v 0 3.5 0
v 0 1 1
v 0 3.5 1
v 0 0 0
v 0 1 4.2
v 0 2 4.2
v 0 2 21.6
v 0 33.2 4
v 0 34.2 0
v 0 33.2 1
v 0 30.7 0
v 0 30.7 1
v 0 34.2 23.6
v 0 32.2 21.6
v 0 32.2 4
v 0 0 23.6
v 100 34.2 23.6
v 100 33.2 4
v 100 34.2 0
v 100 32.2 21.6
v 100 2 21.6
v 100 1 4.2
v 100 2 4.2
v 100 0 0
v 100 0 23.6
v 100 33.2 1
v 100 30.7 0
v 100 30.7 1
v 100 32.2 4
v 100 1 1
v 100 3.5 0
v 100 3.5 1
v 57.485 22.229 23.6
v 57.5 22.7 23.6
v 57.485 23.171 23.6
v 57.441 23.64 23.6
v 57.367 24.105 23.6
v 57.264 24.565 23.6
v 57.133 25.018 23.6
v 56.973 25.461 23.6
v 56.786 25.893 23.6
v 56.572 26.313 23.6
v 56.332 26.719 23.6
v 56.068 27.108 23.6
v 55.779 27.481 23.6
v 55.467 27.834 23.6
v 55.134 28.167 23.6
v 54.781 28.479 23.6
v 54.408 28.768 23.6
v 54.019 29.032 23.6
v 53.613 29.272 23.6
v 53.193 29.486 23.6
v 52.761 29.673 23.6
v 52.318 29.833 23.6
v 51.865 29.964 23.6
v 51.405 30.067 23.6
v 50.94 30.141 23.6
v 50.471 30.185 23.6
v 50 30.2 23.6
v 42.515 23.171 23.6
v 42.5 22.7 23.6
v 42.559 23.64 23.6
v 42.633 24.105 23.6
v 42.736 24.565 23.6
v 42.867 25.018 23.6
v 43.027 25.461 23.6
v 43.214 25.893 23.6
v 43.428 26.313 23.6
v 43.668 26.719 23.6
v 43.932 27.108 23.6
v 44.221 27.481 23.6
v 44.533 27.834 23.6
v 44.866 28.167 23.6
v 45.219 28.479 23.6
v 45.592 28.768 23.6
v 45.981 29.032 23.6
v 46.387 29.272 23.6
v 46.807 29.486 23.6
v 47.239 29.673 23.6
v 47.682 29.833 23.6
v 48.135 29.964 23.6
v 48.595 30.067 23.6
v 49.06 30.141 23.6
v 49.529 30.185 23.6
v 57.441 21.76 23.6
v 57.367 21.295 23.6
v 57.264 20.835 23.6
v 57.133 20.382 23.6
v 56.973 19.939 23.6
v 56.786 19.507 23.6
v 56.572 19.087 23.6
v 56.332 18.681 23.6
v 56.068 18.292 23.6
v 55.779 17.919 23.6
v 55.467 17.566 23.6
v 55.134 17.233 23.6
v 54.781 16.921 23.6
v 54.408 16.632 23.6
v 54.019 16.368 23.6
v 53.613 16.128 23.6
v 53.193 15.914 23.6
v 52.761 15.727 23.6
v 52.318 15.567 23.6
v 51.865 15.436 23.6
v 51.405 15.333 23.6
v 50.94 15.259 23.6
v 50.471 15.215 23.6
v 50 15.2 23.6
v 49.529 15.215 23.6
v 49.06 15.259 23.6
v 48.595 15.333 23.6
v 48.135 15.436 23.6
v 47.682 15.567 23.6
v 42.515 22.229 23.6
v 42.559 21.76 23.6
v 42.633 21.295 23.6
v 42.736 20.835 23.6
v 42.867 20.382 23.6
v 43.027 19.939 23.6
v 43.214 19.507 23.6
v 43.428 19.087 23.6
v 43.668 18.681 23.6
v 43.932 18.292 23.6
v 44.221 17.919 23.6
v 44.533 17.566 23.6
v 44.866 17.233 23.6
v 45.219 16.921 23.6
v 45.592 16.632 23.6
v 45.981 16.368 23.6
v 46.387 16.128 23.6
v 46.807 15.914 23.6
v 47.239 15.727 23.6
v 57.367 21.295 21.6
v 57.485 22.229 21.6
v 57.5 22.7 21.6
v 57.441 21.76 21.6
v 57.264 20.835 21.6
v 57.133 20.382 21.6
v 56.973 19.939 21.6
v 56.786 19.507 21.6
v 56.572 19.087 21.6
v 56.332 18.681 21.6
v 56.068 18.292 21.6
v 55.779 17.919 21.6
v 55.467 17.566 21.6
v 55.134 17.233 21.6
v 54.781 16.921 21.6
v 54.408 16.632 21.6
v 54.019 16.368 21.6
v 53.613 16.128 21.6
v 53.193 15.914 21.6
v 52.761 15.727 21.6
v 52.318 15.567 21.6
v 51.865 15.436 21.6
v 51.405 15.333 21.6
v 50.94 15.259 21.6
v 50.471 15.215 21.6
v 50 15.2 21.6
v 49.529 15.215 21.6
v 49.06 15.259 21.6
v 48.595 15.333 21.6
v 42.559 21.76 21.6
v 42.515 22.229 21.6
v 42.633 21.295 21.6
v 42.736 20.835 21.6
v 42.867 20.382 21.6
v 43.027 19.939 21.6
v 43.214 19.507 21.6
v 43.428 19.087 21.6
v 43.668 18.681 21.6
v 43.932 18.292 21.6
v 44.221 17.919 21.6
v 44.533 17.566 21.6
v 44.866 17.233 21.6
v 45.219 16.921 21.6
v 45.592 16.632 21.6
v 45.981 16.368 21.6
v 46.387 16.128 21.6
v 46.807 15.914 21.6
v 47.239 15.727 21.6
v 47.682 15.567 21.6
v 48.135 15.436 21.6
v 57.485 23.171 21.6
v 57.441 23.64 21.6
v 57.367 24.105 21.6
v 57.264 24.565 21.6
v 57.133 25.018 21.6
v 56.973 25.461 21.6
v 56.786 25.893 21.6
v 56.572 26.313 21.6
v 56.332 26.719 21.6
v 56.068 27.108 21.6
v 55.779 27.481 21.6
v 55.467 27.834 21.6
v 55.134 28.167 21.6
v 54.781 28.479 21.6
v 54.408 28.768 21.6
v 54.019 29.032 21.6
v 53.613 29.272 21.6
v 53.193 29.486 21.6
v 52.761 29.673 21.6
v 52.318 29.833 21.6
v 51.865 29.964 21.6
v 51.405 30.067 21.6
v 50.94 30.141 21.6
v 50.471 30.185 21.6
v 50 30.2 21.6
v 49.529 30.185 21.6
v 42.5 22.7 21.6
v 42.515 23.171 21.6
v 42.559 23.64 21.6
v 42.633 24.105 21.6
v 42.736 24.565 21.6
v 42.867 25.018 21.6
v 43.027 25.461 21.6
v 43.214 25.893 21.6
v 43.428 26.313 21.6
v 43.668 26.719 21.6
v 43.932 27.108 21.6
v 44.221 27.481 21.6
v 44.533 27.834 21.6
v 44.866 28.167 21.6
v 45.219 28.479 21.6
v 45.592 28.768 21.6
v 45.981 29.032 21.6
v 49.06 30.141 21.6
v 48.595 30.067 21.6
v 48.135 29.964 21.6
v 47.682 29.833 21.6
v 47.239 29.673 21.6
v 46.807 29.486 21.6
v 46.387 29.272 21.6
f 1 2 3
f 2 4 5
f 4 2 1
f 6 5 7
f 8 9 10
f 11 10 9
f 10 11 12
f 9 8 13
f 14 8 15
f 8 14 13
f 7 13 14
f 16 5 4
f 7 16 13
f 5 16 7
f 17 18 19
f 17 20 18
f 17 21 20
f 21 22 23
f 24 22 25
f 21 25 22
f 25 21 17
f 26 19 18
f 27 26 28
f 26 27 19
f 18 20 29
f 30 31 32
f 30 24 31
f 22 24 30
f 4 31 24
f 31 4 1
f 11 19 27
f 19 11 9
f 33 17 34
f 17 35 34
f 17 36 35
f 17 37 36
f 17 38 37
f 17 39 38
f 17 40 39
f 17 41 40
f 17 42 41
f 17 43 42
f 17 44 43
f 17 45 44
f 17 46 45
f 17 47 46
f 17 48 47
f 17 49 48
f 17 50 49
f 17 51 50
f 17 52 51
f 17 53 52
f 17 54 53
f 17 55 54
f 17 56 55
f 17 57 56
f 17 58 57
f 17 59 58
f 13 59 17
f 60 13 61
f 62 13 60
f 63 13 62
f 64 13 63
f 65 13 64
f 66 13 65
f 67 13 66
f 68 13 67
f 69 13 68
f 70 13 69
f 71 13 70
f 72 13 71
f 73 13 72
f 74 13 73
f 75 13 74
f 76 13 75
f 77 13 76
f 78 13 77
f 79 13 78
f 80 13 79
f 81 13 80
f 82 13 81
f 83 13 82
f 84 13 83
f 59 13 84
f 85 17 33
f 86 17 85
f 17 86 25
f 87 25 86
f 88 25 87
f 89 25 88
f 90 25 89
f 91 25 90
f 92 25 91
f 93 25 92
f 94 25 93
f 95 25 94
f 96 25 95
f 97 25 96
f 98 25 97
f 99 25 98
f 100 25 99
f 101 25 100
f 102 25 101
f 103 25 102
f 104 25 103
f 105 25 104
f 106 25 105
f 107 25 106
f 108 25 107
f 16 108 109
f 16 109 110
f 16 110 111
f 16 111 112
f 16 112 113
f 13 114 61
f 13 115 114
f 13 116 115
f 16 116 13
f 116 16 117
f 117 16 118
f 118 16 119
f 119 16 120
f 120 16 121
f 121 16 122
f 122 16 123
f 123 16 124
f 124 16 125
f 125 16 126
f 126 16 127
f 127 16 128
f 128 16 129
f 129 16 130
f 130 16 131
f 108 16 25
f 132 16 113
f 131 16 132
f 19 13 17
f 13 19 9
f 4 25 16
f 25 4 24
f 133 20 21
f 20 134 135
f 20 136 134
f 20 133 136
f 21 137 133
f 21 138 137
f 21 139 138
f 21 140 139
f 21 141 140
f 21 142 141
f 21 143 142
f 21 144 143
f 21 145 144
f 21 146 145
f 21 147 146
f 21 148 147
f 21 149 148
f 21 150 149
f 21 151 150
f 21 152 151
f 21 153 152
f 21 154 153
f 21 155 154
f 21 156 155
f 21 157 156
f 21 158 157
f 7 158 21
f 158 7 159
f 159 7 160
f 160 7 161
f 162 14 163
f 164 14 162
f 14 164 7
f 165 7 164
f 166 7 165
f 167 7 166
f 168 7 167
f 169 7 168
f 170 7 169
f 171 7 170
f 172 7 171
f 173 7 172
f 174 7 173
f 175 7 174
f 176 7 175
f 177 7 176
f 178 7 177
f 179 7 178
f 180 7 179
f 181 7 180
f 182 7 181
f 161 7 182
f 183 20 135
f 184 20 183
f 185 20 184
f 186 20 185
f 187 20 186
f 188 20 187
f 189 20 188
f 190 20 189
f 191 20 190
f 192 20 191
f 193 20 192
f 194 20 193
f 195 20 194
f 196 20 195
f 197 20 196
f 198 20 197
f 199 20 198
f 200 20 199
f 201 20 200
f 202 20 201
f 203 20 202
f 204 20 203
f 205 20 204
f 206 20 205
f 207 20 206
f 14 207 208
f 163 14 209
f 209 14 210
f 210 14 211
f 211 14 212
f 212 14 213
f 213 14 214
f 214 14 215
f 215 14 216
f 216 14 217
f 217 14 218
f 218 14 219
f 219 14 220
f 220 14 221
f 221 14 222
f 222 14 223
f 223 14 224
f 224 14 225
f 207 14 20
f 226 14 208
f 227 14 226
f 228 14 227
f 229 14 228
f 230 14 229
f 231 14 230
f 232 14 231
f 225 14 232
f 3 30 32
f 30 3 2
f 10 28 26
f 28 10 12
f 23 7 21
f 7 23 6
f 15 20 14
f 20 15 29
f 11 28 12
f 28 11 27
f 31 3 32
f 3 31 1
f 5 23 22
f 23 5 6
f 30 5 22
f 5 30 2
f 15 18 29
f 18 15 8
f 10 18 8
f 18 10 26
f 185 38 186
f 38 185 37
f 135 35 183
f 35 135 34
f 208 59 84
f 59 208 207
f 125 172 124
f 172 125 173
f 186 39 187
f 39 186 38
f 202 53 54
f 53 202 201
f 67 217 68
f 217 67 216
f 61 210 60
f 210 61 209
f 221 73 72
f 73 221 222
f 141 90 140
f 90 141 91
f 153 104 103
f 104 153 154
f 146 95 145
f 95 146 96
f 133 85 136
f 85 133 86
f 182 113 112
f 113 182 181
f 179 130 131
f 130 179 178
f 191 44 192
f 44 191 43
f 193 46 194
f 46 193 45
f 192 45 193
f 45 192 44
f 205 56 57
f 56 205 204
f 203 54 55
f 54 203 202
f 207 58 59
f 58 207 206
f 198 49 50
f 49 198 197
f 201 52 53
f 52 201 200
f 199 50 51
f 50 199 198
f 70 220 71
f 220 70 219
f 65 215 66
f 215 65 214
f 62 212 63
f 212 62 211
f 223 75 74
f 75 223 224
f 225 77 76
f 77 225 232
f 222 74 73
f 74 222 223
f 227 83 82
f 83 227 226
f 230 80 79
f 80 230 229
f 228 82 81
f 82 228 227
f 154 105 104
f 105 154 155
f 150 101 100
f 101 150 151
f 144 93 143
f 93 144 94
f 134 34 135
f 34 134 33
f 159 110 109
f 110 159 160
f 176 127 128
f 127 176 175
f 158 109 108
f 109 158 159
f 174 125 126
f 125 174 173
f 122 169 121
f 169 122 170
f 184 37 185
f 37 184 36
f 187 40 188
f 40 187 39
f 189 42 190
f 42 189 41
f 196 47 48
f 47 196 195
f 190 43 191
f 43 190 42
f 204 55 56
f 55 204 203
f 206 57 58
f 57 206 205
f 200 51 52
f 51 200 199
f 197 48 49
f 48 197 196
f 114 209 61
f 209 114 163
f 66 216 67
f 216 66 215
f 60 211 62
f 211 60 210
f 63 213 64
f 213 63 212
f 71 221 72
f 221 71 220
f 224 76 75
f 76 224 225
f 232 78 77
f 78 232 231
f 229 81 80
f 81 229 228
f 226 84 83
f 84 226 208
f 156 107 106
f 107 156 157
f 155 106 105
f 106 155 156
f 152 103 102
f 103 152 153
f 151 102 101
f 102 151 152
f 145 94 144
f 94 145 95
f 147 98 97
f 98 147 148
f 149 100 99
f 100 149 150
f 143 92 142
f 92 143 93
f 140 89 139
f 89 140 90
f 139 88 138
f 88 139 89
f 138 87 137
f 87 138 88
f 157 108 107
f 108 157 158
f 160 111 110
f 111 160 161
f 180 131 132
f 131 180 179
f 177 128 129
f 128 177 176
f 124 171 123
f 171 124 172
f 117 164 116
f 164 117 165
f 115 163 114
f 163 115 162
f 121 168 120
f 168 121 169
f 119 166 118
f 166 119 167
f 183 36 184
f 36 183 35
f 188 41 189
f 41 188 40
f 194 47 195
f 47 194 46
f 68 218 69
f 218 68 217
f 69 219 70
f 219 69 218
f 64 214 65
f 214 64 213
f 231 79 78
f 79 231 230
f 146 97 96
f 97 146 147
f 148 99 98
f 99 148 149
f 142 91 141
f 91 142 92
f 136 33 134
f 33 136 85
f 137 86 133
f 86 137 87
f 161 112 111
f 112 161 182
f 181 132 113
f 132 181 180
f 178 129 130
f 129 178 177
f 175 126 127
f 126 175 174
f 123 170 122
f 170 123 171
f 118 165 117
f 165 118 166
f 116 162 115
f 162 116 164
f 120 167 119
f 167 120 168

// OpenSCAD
$fn=100;


ml_clip_width=100; // Default: 50. The width of the clip
ml_clip_depth=30.2; // This is the width of the lamp. I used an U-profile with a size of 30mm. Recommendation to add 0.2 to fit perfectly. 
ml_clip_heigth=20.6; // The height of the lamp. This is the height of the U-Profile and the thickness of the diffusor. the Diffusor has a thickenss of 0.4 and i recommnd to add another 0.2mm to fit perfectly (20.6 for 20 mm profile).
ml_clip_thickness=1.0; // The material thickness of the clip (One mm will be added automatically)

ml_pipe_diameter=21.3; // The diameter of the pipe which holds the lamp. "ml_pipe_sleeve_extension" will automatically be added, so that the holder slips well over the tube.
ml_pipe_sleeve_extension=0.4;
ml_pipe_sleeve_length=100;
ml_pipe_sleeve_thickness=1.5;

module lamp_clip(w, d, h, t) {
    difference() {

        union() {
            // Outer shape
            translate([0, 1, 0])
            cube([w, d + t * 2, h + t * 2]);

            // Static reinforcement of 1mm top
            color("pink")
            translate([0, 0, h + t+1])
            cube([w, d + t * 2 + 2, 1]);

            // Static reinforcement of 1mm side 1
            translate([0, 0, 0])
            cube([w, 1, h + t * 2]);

            // Static reinforcement of 1mm side 2
            translate([0, d + t * 2 + 1, 0])
            cube([w, 1, h + t * 2]);
        }

        // cutout
        translate([-1, t + 1, t])
        cube([w + 2, d, h]);

        //Cut out the lower part of the clip
        color("red")
        translate([-1, t + 2.5, -1])
        cube([w + 2, d - t - 2, t + 2]);

        //Cut out diffusor (3mm)
        color("red")
        translate([-1, 1, t])
        cube([w + 2, t + 1, 3.2]);

        //Cut out diffusor (3mm)
        color("red")
        translate([-1, d +  t, t])
        cube([w + 2, t + 1, 3]);

    }

}


difference() {
        
    //The clip which holds the lamp
    lamp_clip(ml_clip_width,
                ml_clip_depth,
                ml_clip_heigth,
                ml_clip_thickness);

    // The hole between clip and case
    color("red")
    translate([ml_clip_width/2, ml_clip_depth - 7.5, ml_clip_heigth])
    cylinder(h=6, r=7.5);

}
